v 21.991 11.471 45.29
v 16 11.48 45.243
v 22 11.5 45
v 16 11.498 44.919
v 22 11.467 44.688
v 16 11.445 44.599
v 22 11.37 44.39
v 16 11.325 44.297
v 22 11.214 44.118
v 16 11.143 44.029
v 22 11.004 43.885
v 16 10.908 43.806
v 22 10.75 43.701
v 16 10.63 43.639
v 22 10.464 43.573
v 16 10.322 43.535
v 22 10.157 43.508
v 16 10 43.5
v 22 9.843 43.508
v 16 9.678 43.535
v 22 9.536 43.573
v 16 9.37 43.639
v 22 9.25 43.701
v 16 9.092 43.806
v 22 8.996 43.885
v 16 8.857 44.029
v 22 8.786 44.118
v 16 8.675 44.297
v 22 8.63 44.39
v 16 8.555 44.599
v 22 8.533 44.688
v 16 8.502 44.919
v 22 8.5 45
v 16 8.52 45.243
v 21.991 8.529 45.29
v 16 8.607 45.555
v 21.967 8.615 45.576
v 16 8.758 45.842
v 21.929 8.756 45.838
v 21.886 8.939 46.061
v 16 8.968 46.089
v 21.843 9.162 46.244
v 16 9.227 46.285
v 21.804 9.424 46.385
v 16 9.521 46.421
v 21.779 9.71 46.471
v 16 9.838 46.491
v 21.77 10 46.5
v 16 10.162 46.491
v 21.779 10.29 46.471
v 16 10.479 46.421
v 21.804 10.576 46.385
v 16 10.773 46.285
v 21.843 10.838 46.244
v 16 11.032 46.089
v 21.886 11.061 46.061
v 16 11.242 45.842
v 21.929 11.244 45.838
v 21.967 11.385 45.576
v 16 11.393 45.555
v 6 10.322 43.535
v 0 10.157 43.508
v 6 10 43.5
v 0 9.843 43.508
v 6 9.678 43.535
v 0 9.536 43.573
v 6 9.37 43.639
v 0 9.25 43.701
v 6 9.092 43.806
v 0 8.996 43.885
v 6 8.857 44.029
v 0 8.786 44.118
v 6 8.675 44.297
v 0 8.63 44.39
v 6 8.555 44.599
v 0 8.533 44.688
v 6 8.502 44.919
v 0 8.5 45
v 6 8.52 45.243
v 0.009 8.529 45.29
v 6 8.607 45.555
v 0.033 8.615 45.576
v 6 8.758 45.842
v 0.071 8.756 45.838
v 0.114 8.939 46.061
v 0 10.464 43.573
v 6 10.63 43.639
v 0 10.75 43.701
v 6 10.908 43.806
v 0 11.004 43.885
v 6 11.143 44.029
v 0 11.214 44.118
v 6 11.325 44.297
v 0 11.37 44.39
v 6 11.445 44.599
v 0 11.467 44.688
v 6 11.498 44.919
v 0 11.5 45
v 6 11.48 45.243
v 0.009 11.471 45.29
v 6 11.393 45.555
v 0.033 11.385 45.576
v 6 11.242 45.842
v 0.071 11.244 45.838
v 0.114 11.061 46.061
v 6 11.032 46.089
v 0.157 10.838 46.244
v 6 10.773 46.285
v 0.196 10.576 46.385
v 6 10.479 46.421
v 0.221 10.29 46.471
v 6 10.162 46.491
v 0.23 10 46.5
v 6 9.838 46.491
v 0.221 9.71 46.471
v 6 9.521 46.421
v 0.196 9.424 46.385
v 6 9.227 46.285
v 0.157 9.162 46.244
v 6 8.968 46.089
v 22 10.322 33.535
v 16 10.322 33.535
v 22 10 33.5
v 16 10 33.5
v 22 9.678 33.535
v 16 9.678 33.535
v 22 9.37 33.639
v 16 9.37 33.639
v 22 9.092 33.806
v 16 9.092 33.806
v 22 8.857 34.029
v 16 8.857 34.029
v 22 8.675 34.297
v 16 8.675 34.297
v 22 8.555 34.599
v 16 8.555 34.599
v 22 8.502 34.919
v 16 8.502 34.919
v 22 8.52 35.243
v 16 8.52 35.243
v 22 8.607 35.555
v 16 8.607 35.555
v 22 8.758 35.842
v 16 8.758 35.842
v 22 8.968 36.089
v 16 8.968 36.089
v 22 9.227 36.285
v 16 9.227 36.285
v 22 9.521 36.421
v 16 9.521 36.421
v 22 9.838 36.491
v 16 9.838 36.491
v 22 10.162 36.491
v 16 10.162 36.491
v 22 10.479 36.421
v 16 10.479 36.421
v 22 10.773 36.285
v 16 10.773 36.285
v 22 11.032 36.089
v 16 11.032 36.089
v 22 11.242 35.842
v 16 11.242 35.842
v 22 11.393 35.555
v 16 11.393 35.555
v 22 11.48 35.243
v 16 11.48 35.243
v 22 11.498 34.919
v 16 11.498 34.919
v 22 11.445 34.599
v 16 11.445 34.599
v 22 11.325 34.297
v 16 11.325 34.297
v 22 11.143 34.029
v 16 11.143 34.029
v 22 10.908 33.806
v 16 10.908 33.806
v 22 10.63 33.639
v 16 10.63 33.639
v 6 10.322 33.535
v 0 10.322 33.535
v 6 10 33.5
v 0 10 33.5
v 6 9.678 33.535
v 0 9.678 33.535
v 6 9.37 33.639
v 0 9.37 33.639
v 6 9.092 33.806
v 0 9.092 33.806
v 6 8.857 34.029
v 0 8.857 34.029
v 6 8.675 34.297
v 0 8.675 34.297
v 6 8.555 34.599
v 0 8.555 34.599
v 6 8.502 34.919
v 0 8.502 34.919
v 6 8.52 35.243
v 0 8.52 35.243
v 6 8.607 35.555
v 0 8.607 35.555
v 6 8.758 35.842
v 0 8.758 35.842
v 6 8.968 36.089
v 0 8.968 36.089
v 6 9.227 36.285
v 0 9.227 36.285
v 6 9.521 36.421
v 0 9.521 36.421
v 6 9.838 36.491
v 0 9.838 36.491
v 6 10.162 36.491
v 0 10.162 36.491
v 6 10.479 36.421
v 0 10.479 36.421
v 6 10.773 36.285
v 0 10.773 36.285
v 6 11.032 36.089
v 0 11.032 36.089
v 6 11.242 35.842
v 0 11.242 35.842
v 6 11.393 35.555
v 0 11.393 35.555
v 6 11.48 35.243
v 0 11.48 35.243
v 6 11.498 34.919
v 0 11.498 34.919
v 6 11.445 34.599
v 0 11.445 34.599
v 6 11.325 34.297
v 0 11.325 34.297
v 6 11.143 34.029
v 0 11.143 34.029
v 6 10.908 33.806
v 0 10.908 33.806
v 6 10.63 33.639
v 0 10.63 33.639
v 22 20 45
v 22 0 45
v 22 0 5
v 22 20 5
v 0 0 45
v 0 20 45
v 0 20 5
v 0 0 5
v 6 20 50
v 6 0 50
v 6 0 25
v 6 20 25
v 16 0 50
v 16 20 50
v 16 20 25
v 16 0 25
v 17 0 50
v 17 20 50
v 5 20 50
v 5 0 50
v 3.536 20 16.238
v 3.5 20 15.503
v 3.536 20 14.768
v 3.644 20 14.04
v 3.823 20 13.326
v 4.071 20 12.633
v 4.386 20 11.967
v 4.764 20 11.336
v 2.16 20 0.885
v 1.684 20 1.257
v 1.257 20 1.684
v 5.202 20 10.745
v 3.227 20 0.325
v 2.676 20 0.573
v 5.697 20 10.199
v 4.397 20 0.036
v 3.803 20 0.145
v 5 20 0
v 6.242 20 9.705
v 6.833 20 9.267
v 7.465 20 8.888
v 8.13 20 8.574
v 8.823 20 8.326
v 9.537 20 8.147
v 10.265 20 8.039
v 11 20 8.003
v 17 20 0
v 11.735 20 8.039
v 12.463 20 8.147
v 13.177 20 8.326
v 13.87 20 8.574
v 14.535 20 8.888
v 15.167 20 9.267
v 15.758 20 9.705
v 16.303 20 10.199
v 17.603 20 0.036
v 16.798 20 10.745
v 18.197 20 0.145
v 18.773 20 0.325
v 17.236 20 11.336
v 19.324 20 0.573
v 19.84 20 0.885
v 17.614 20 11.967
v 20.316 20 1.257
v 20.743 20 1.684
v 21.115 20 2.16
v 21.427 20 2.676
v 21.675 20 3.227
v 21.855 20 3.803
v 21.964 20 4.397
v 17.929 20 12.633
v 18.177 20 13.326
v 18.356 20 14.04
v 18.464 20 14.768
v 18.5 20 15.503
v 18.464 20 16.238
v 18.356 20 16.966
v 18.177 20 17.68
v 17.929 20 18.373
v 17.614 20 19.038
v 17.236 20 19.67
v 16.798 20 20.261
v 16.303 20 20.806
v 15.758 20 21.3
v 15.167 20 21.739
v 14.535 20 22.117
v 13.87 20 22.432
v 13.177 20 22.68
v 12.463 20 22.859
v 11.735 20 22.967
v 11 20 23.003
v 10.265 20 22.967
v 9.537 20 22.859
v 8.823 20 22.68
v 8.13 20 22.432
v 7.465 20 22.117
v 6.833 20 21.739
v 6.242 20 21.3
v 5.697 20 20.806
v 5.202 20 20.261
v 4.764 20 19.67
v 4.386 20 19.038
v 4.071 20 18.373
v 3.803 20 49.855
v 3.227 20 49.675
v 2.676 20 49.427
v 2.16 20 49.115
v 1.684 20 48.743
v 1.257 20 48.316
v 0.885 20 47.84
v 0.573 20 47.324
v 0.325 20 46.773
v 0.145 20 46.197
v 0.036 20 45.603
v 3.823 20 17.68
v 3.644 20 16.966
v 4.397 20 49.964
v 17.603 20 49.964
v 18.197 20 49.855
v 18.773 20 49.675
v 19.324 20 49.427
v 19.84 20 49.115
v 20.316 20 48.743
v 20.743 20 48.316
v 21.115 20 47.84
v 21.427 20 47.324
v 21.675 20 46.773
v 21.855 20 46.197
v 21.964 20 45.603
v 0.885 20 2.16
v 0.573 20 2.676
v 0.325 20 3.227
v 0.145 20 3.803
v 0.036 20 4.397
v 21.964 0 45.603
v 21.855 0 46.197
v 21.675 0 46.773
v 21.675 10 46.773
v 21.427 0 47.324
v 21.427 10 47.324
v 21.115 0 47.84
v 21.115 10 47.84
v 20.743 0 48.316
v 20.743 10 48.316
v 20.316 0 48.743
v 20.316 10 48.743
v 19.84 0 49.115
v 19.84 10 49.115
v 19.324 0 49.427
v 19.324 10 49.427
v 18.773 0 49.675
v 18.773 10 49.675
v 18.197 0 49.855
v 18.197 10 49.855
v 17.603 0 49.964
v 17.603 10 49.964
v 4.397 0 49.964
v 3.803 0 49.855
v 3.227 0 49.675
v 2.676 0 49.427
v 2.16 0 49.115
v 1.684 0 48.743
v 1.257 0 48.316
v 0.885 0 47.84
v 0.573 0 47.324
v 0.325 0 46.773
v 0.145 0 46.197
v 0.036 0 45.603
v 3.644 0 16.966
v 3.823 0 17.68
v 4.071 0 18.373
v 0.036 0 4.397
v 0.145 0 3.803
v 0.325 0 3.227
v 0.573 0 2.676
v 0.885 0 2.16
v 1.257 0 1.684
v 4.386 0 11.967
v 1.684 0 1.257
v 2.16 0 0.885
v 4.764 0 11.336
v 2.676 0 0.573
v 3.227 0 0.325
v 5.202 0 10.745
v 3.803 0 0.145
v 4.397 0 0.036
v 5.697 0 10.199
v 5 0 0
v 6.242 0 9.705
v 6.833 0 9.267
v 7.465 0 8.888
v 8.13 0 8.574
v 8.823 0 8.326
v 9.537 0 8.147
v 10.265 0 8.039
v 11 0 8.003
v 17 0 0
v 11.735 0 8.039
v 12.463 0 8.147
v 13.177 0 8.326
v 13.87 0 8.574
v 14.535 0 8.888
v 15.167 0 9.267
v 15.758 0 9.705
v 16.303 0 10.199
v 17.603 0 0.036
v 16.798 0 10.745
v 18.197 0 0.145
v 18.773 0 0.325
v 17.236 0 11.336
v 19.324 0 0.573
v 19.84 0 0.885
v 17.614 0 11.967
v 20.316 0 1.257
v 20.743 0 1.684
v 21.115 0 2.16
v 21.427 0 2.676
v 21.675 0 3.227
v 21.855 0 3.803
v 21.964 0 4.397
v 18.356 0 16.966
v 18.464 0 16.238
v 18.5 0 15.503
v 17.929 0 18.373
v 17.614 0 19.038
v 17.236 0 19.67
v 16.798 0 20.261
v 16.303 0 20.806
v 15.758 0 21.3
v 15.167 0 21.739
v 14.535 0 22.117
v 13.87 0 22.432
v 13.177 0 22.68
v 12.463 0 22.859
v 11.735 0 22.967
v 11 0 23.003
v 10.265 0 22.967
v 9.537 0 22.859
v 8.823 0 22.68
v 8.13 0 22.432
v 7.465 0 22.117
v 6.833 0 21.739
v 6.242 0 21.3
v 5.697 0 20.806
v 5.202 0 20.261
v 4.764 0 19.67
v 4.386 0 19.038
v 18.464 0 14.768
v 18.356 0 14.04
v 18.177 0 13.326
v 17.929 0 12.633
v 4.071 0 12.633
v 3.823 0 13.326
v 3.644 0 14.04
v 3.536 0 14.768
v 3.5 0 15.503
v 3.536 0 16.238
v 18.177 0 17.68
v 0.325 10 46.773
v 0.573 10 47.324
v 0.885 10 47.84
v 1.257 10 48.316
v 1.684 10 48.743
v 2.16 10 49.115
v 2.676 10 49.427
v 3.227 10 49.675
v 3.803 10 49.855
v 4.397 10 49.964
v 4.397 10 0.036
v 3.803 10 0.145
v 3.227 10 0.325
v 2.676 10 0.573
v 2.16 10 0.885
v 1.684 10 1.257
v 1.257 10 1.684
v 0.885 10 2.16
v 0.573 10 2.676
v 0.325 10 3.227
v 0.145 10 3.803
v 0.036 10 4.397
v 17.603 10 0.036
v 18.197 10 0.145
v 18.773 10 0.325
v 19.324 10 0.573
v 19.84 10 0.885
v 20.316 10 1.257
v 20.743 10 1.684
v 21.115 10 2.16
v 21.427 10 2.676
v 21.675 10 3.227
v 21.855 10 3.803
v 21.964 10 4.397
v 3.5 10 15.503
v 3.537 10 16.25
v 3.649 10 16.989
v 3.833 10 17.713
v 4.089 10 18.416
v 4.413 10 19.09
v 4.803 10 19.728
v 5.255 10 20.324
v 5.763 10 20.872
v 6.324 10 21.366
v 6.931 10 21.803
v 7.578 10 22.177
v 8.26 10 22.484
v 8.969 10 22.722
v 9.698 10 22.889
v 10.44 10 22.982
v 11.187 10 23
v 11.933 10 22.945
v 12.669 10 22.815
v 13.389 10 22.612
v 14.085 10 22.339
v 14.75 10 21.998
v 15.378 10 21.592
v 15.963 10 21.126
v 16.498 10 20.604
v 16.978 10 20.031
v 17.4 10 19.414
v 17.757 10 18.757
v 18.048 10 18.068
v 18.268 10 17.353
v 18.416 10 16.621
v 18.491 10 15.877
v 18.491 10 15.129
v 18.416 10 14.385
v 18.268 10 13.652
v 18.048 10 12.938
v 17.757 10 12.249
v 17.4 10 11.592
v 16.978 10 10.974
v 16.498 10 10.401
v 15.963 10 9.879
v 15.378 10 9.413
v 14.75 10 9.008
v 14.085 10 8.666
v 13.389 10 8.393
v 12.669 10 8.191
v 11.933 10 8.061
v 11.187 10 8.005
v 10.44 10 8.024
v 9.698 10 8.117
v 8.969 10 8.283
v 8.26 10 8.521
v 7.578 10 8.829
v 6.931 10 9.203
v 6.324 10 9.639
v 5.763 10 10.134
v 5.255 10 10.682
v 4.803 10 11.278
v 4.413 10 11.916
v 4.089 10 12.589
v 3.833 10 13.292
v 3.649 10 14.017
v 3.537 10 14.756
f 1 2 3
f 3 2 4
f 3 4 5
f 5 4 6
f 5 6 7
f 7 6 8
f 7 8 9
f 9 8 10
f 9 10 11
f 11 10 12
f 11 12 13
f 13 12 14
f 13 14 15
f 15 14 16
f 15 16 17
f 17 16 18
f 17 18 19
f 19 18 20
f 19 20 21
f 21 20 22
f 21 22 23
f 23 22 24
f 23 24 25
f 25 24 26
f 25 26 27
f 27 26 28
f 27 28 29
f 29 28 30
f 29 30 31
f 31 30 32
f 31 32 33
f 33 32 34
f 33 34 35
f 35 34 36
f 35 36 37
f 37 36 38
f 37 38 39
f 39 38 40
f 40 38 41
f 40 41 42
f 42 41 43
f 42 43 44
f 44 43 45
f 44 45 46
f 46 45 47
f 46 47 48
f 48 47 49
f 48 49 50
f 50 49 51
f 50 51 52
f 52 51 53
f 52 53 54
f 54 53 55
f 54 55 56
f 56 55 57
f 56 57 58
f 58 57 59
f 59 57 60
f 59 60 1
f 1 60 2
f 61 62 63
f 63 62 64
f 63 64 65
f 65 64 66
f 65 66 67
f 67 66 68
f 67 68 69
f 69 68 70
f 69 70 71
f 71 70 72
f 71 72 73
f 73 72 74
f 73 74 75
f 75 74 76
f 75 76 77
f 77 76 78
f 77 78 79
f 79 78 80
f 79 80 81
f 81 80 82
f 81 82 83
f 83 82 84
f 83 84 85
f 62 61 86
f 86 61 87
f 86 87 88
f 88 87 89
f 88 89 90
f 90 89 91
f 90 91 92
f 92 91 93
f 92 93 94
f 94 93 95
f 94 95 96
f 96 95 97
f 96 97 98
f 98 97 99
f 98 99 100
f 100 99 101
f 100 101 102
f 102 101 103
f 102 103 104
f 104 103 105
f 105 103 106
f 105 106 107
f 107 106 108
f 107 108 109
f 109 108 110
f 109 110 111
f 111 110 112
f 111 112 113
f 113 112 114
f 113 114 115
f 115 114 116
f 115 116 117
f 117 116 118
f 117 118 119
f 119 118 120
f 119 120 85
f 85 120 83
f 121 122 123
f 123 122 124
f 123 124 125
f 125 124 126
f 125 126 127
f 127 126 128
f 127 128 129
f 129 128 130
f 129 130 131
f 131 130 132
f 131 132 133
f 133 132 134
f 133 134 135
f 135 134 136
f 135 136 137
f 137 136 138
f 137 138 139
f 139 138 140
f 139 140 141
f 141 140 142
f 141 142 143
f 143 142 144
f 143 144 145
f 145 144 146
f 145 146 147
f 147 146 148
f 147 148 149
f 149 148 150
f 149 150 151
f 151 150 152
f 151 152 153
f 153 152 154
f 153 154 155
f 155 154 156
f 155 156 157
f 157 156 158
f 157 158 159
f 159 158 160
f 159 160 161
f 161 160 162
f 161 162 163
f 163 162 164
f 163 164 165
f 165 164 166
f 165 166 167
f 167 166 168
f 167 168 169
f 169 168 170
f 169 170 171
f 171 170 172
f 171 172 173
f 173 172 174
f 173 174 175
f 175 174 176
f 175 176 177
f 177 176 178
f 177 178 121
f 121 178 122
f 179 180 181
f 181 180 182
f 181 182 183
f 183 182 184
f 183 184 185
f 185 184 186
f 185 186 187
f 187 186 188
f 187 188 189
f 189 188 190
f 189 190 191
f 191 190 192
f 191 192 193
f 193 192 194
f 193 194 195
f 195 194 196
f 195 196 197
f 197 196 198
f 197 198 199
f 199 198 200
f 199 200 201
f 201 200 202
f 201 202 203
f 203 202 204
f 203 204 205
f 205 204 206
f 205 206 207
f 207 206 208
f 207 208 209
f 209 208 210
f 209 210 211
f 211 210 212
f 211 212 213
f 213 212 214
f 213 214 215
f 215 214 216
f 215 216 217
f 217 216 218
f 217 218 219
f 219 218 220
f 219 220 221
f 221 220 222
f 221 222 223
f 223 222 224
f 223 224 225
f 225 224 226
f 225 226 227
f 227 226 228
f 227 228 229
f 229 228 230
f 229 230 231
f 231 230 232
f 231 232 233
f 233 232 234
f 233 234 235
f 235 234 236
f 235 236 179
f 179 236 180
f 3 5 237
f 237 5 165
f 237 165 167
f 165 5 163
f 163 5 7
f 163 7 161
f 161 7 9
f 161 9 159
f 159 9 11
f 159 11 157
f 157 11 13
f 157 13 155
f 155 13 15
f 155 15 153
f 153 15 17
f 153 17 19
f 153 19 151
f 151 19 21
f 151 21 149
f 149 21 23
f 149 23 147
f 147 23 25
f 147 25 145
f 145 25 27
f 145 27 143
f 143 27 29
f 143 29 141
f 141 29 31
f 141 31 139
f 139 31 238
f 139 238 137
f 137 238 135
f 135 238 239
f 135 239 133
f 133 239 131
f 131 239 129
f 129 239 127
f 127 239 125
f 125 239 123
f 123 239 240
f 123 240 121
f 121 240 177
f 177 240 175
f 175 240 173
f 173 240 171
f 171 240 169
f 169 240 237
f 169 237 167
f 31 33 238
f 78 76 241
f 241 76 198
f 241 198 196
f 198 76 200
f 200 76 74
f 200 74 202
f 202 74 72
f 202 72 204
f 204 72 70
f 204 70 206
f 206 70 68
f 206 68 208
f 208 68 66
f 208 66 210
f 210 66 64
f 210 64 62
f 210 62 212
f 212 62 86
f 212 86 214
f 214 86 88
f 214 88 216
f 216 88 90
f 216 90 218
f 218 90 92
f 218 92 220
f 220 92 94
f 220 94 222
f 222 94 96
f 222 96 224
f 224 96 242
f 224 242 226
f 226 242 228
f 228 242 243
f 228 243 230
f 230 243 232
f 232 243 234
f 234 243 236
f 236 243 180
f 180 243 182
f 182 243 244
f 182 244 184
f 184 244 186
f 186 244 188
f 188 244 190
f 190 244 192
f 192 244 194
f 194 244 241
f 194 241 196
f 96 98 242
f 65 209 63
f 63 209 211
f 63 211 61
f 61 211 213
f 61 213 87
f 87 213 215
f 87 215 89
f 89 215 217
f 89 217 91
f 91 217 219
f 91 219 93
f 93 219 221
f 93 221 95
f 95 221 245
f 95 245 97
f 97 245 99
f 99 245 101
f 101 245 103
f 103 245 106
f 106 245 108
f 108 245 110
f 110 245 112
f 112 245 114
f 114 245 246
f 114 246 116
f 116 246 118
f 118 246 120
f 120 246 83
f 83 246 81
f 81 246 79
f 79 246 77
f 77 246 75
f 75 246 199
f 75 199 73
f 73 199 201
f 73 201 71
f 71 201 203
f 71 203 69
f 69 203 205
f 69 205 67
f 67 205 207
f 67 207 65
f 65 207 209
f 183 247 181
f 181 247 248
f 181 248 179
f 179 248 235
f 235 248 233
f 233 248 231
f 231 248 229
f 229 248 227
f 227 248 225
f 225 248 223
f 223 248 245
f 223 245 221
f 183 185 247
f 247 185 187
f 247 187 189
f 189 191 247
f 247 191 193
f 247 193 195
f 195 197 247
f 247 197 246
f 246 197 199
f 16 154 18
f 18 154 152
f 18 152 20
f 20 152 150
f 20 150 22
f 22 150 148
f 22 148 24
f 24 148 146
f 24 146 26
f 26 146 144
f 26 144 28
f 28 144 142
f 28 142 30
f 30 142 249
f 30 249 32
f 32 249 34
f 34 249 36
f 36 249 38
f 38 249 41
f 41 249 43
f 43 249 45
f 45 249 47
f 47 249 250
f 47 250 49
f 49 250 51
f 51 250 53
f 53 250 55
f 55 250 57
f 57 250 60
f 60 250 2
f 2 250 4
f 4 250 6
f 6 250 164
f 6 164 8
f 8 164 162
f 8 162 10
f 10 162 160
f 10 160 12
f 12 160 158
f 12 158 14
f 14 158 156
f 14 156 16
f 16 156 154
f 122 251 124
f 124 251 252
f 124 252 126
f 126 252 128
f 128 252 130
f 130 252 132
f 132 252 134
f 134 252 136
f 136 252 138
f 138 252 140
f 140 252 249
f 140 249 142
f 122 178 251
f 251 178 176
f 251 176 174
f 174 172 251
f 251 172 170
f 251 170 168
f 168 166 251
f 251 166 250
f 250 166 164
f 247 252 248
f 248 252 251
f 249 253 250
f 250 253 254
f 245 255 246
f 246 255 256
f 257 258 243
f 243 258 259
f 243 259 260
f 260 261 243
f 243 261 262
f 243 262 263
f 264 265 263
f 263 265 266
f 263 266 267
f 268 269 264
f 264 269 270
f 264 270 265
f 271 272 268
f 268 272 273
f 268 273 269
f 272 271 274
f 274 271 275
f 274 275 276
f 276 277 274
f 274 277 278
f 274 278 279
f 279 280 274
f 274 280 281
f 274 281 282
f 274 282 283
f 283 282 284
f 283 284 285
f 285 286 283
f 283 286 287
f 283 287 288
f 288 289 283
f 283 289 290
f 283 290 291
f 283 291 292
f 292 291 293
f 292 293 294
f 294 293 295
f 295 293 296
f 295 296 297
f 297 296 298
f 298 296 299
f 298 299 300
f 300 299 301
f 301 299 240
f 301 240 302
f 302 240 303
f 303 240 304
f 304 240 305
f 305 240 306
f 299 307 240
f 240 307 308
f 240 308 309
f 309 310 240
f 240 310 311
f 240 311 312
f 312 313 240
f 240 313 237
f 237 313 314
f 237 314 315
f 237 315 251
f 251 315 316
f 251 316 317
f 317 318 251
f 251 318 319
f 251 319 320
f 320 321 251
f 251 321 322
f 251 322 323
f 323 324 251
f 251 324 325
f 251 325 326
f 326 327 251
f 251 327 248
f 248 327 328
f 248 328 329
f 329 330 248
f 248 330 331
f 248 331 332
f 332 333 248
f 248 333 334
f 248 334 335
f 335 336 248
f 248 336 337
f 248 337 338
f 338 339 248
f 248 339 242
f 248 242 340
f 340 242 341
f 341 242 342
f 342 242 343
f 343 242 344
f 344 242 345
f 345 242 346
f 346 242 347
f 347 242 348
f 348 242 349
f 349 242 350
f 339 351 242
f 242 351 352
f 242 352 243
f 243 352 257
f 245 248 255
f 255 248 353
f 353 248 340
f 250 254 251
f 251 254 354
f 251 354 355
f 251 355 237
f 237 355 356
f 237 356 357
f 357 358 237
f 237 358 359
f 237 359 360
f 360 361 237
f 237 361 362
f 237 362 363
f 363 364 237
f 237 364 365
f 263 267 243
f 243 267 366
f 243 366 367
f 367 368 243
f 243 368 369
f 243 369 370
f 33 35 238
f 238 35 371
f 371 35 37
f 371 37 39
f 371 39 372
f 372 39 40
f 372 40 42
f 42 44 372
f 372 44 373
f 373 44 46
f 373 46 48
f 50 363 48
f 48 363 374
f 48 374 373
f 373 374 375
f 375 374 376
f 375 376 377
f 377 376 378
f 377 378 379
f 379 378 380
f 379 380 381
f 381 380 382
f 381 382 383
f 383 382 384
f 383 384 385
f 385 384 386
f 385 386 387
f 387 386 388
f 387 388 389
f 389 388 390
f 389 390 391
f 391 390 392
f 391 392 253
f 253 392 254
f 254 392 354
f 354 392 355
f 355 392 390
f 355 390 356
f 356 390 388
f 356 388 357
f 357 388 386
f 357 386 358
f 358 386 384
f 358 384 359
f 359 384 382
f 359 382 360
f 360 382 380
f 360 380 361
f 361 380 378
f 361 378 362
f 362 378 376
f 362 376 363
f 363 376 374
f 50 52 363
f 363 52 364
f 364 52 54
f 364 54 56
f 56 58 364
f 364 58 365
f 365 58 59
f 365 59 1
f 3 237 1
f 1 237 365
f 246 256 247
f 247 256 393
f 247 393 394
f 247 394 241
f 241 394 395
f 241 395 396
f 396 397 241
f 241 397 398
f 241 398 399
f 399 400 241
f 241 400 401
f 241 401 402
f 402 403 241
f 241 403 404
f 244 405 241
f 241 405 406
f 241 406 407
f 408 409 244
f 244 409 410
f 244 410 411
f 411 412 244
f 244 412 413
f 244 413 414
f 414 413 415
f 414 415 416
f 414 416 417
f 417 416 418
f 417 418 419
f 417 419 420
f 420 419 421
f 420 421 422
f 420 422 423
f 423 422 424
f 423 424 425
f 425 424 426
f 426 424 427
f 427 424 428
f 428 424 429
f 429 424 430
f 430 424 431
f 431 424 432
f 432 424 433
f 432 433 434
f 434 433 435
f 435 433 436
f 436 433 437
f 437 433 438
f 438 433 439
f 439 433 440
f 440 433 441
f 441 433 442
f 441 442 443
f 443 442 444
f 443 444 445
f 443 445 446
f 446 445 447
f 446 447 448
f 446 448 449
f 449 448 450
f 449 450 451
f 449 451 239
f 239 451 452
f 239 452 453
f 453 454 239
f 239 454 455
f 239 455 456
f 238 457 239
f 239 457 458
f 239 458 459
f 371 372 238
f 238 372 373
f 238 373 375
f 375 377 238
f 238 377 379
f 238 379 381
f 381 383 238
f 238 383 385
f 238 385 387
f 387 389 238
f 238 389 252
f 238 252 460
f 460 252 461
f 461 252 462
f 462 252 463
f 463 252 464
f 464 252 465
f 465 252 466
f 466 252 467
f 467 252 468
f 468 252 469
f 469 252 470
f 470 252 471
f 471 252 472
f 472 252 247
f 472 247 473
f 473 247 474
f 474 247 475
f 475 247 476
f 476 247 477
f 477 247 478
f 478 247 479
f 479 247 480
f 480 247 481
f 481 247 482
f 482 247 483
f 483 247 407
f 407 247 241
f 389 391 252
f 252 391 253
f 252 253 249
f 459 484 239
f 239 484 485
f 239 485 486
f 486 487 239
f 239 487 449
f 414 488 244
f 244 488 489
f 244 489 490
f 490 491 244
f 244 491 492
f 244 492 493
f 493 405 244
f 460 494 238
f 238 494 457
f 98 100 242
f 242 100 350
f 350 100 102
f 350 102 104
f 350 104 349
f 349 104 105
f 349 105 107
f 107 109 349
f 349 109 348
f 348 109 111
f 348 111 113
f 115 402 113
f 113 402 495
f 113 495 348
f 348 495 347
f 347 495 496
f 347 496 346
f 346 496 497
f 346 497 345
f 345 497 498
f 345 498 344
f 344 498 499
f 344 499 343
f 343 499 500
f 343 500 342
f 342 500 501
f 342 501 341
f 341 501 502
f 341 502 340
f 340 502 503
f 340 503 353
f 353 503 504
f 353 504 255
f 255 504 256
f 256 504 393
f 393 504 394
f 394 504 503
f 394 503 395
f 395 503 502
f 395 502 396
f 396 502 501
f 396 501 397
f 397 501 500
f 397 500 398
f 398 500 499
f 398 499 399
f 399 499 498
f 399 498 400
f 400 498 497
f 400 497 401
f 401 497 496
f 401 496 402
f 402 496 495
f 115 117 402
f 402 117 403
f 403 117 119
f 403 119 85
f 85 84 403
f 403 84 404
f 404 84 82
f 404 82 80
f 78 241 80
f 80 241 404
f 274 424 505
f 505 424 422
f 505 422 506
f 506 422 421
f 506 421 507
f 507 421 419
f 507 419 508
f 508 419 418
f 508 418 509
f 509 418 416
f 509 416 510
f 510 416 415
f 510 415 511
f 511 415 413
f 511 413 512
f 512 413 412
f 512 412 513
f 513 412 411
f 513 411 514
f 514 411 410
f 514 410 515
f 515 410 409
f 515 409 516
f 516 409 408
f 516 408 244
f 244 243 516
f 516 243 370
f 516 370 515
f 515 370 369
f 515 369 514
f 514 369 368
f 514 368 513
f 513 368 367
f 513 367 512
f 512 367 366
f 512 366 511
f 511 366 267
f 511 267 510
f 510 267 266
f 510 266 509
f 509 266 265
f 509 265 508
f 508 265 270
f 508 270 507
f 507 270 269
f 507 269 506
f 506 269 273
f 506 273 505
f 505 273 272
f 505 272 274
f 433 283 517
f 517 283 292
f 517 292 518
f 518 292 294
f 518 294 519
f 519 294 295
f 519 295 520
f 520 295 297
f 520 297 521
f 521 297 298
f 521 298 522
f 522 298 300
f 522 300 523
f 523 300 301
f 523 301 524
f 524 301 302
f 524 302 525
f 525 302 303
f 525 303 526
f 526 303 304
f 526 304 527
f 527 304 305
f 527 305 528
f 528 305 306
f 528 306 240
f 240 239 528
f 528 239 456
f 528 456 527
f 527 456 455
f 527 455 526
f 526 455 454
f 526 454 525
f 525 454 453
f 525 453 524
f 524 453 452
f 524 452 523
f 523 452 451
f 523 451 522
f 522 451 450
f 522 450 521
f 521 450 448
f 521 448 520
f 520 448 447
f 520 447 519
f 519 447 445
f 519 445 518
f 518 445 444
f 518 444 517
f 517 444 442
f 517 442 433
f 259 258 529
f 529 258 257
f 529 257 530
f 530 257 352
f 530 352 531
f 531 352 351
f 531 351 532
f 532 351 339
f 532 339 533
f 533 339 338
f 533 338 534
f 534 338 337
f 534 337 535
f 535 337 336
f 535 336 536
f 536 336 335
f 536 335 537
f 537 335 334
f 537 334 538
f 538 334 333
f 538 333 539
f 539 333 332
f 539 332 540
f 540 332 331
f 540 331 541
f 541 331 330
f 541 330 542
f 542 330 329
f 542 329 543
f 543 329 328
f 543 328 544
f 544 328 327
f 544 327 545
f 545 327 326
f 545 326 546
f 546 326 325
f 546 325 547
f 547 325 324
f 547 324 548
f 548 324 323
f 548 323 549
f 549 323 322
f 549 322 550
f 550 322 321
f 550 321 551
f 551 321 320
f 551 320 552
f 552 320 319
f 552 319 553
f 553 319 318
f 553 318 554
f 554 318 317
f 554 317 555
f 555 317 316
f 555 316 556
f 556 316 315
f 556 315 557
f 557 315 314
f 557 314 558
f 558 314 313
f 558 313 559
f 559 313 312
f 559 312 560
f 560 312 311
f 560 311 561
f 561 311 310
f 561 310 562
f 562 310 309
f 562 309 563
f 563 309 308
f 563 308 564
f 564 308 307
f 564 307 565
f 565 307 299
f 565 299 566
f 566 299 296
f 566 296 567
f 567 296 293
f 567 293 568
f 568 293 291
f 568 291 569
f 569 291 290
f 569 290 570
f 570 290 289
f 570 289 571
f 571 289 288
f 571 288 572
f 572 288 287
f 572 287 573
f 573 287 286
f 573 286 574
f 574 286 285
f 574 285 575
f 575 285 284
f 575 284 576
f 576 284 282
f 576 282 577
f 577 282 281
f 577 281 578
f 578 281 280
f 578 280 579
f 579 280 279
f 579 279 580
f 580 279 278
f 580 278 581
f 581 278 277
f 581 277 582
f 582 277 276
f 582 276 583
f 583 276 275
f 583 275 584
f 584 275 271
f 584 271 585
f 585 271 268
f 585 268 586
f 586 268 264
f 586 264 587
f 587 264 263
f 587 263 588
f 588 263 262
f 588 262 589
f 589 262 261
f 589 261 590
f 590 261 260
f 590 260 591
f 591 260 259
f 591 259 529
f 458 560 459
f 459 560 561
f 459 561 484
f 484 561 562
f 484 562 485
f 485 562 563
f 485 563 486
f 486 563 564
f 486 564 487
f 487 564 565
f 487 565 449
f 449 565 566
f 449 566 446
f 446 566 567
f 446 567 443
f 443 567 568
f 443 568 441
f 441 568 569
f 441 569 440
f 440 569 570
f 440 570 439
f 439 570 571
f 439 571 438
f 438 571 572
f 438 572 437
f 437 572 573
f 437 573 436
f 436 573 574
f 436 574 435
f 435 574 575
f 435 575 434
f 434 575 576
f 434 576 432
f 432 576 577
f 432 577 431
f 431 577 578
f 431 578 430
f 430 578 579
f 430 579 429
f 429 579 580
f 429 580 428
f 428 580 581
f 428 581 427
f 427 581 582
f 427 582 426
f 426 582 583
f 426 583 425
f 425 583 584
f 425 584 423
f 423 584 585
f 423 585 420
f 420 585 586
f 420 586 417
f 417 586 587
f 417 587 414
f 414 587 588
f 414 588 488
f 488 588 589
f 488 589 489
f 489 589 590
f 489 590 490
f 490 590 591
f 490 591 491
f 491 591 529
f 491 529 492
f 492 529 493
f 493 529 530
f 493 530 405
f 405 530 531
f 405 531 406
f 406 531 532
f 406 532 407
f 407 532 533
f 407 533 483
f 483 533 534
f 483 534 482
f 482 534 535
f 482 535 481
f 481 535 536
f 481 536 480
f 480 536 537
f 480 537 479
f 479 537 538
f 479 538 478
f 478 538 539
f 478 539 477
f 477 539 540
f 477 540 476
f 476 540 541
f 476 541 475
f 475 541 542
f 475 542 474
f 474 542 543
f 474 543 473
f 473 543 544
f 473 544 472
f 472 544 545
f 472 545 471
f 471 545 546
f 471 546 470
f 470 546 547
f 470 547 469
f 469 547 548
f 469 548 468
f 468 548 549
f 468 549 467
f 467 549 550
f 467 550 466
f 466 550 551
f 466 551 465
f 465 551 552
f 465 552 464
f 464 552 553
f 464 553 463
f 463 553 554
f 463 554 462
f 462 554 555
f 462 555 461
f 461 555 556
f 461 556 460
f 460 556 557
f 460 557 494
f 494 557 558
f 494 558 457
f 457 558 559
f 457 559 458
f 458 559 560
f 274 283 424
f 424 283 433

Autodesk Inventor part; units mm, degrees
ref_plane "YZ Plane" through (0, 0, 0) normal (1, 0, 0) x (0, 1, 0)
ref_plane "XZ Plane" through (0, 0, 0) normal (0, 1, 0) x (-1, 0, 0)
ref_plane "XY Plane" through (0, 0, 0) normal (0, 0, 1) x (1, 0, 0)
sketch "Esboço1" plane through (0, 0, 0) normal (0, 0, 1) x (1, 0, 0)
  line L0 (0, 0) -> (22, 0)
  line L1 (22, 0) -> (22, 20)
  line L2 (22, 20) -> (0, 20)
  line L3 (0, 20) -> (0, 0)
  dimension "d0" = 22
  dimension "d1" = 20
extrude "Extrusão1" add sketch "Esboço1" along normal blind 50
sketch "Esboço2" plane through (0, 0, 0) normal (0, -1, 0) x (1, 0, 0)
  line L0 (0, 0) -> (0, 50) projected
  line L1 (22, 50) -> (0, 50) projected
  point P0 (11, 15.5027)
  dimension "d20" = 11
  dimension "d35" = 34.4973
hole "Furo1" at (11, 0, 15.5027) direction (0, 1, 0) diameter 15 end through all
fillet "Arredondamento1" radius 5 4 edges at (22, 10, 0) (0, 10, 0) (0, 10, 50) (22, 10, 50)
sketch "Esboço4" plane through (5, 20, 0) normal (0, 1, 0) x (1, 0, 0)
  line L0 (12, -50) -> (0, -50) projected
  line L1 (6, -50) -> (6, -25)
  line L2 (1, -50) -> (11, -50)
  line L3 (11, -50) -> (11, -25)
  line L4 (11, -25) -> (1, -25)
  line L5 (1, -25) -> (1, -50)
  line L6 (1, -50) -> (11, -25) construction
  line L7 (11, -50) -> (1, -25) construction
  point P0 (-5, 0)
  point P1 (6, -37.5)
  dimension "d22" = 25
  dimension "d23" = 10
extrude "Extrusão2" cut sketch "Esboço4" against normal through all
sketch "Esboço5" plane through (16, 20, 25) normal (-1, 0, 0) x (0, 0, 1)
  line L0 (25, -20) -> (25, 0) projected
  point P0 (-25, -20)
  point P1 (20, -10)
  point P2 (10, -10)
  dimension "d33" = 5
  dimension "d34" = 10
hole "Furo3" at (16, 10, 45) at (16, 10, 35) direction (1, 0, 0) diameter 3 end through all both
properties part number "Base 1 LMU8_3DPrint"
